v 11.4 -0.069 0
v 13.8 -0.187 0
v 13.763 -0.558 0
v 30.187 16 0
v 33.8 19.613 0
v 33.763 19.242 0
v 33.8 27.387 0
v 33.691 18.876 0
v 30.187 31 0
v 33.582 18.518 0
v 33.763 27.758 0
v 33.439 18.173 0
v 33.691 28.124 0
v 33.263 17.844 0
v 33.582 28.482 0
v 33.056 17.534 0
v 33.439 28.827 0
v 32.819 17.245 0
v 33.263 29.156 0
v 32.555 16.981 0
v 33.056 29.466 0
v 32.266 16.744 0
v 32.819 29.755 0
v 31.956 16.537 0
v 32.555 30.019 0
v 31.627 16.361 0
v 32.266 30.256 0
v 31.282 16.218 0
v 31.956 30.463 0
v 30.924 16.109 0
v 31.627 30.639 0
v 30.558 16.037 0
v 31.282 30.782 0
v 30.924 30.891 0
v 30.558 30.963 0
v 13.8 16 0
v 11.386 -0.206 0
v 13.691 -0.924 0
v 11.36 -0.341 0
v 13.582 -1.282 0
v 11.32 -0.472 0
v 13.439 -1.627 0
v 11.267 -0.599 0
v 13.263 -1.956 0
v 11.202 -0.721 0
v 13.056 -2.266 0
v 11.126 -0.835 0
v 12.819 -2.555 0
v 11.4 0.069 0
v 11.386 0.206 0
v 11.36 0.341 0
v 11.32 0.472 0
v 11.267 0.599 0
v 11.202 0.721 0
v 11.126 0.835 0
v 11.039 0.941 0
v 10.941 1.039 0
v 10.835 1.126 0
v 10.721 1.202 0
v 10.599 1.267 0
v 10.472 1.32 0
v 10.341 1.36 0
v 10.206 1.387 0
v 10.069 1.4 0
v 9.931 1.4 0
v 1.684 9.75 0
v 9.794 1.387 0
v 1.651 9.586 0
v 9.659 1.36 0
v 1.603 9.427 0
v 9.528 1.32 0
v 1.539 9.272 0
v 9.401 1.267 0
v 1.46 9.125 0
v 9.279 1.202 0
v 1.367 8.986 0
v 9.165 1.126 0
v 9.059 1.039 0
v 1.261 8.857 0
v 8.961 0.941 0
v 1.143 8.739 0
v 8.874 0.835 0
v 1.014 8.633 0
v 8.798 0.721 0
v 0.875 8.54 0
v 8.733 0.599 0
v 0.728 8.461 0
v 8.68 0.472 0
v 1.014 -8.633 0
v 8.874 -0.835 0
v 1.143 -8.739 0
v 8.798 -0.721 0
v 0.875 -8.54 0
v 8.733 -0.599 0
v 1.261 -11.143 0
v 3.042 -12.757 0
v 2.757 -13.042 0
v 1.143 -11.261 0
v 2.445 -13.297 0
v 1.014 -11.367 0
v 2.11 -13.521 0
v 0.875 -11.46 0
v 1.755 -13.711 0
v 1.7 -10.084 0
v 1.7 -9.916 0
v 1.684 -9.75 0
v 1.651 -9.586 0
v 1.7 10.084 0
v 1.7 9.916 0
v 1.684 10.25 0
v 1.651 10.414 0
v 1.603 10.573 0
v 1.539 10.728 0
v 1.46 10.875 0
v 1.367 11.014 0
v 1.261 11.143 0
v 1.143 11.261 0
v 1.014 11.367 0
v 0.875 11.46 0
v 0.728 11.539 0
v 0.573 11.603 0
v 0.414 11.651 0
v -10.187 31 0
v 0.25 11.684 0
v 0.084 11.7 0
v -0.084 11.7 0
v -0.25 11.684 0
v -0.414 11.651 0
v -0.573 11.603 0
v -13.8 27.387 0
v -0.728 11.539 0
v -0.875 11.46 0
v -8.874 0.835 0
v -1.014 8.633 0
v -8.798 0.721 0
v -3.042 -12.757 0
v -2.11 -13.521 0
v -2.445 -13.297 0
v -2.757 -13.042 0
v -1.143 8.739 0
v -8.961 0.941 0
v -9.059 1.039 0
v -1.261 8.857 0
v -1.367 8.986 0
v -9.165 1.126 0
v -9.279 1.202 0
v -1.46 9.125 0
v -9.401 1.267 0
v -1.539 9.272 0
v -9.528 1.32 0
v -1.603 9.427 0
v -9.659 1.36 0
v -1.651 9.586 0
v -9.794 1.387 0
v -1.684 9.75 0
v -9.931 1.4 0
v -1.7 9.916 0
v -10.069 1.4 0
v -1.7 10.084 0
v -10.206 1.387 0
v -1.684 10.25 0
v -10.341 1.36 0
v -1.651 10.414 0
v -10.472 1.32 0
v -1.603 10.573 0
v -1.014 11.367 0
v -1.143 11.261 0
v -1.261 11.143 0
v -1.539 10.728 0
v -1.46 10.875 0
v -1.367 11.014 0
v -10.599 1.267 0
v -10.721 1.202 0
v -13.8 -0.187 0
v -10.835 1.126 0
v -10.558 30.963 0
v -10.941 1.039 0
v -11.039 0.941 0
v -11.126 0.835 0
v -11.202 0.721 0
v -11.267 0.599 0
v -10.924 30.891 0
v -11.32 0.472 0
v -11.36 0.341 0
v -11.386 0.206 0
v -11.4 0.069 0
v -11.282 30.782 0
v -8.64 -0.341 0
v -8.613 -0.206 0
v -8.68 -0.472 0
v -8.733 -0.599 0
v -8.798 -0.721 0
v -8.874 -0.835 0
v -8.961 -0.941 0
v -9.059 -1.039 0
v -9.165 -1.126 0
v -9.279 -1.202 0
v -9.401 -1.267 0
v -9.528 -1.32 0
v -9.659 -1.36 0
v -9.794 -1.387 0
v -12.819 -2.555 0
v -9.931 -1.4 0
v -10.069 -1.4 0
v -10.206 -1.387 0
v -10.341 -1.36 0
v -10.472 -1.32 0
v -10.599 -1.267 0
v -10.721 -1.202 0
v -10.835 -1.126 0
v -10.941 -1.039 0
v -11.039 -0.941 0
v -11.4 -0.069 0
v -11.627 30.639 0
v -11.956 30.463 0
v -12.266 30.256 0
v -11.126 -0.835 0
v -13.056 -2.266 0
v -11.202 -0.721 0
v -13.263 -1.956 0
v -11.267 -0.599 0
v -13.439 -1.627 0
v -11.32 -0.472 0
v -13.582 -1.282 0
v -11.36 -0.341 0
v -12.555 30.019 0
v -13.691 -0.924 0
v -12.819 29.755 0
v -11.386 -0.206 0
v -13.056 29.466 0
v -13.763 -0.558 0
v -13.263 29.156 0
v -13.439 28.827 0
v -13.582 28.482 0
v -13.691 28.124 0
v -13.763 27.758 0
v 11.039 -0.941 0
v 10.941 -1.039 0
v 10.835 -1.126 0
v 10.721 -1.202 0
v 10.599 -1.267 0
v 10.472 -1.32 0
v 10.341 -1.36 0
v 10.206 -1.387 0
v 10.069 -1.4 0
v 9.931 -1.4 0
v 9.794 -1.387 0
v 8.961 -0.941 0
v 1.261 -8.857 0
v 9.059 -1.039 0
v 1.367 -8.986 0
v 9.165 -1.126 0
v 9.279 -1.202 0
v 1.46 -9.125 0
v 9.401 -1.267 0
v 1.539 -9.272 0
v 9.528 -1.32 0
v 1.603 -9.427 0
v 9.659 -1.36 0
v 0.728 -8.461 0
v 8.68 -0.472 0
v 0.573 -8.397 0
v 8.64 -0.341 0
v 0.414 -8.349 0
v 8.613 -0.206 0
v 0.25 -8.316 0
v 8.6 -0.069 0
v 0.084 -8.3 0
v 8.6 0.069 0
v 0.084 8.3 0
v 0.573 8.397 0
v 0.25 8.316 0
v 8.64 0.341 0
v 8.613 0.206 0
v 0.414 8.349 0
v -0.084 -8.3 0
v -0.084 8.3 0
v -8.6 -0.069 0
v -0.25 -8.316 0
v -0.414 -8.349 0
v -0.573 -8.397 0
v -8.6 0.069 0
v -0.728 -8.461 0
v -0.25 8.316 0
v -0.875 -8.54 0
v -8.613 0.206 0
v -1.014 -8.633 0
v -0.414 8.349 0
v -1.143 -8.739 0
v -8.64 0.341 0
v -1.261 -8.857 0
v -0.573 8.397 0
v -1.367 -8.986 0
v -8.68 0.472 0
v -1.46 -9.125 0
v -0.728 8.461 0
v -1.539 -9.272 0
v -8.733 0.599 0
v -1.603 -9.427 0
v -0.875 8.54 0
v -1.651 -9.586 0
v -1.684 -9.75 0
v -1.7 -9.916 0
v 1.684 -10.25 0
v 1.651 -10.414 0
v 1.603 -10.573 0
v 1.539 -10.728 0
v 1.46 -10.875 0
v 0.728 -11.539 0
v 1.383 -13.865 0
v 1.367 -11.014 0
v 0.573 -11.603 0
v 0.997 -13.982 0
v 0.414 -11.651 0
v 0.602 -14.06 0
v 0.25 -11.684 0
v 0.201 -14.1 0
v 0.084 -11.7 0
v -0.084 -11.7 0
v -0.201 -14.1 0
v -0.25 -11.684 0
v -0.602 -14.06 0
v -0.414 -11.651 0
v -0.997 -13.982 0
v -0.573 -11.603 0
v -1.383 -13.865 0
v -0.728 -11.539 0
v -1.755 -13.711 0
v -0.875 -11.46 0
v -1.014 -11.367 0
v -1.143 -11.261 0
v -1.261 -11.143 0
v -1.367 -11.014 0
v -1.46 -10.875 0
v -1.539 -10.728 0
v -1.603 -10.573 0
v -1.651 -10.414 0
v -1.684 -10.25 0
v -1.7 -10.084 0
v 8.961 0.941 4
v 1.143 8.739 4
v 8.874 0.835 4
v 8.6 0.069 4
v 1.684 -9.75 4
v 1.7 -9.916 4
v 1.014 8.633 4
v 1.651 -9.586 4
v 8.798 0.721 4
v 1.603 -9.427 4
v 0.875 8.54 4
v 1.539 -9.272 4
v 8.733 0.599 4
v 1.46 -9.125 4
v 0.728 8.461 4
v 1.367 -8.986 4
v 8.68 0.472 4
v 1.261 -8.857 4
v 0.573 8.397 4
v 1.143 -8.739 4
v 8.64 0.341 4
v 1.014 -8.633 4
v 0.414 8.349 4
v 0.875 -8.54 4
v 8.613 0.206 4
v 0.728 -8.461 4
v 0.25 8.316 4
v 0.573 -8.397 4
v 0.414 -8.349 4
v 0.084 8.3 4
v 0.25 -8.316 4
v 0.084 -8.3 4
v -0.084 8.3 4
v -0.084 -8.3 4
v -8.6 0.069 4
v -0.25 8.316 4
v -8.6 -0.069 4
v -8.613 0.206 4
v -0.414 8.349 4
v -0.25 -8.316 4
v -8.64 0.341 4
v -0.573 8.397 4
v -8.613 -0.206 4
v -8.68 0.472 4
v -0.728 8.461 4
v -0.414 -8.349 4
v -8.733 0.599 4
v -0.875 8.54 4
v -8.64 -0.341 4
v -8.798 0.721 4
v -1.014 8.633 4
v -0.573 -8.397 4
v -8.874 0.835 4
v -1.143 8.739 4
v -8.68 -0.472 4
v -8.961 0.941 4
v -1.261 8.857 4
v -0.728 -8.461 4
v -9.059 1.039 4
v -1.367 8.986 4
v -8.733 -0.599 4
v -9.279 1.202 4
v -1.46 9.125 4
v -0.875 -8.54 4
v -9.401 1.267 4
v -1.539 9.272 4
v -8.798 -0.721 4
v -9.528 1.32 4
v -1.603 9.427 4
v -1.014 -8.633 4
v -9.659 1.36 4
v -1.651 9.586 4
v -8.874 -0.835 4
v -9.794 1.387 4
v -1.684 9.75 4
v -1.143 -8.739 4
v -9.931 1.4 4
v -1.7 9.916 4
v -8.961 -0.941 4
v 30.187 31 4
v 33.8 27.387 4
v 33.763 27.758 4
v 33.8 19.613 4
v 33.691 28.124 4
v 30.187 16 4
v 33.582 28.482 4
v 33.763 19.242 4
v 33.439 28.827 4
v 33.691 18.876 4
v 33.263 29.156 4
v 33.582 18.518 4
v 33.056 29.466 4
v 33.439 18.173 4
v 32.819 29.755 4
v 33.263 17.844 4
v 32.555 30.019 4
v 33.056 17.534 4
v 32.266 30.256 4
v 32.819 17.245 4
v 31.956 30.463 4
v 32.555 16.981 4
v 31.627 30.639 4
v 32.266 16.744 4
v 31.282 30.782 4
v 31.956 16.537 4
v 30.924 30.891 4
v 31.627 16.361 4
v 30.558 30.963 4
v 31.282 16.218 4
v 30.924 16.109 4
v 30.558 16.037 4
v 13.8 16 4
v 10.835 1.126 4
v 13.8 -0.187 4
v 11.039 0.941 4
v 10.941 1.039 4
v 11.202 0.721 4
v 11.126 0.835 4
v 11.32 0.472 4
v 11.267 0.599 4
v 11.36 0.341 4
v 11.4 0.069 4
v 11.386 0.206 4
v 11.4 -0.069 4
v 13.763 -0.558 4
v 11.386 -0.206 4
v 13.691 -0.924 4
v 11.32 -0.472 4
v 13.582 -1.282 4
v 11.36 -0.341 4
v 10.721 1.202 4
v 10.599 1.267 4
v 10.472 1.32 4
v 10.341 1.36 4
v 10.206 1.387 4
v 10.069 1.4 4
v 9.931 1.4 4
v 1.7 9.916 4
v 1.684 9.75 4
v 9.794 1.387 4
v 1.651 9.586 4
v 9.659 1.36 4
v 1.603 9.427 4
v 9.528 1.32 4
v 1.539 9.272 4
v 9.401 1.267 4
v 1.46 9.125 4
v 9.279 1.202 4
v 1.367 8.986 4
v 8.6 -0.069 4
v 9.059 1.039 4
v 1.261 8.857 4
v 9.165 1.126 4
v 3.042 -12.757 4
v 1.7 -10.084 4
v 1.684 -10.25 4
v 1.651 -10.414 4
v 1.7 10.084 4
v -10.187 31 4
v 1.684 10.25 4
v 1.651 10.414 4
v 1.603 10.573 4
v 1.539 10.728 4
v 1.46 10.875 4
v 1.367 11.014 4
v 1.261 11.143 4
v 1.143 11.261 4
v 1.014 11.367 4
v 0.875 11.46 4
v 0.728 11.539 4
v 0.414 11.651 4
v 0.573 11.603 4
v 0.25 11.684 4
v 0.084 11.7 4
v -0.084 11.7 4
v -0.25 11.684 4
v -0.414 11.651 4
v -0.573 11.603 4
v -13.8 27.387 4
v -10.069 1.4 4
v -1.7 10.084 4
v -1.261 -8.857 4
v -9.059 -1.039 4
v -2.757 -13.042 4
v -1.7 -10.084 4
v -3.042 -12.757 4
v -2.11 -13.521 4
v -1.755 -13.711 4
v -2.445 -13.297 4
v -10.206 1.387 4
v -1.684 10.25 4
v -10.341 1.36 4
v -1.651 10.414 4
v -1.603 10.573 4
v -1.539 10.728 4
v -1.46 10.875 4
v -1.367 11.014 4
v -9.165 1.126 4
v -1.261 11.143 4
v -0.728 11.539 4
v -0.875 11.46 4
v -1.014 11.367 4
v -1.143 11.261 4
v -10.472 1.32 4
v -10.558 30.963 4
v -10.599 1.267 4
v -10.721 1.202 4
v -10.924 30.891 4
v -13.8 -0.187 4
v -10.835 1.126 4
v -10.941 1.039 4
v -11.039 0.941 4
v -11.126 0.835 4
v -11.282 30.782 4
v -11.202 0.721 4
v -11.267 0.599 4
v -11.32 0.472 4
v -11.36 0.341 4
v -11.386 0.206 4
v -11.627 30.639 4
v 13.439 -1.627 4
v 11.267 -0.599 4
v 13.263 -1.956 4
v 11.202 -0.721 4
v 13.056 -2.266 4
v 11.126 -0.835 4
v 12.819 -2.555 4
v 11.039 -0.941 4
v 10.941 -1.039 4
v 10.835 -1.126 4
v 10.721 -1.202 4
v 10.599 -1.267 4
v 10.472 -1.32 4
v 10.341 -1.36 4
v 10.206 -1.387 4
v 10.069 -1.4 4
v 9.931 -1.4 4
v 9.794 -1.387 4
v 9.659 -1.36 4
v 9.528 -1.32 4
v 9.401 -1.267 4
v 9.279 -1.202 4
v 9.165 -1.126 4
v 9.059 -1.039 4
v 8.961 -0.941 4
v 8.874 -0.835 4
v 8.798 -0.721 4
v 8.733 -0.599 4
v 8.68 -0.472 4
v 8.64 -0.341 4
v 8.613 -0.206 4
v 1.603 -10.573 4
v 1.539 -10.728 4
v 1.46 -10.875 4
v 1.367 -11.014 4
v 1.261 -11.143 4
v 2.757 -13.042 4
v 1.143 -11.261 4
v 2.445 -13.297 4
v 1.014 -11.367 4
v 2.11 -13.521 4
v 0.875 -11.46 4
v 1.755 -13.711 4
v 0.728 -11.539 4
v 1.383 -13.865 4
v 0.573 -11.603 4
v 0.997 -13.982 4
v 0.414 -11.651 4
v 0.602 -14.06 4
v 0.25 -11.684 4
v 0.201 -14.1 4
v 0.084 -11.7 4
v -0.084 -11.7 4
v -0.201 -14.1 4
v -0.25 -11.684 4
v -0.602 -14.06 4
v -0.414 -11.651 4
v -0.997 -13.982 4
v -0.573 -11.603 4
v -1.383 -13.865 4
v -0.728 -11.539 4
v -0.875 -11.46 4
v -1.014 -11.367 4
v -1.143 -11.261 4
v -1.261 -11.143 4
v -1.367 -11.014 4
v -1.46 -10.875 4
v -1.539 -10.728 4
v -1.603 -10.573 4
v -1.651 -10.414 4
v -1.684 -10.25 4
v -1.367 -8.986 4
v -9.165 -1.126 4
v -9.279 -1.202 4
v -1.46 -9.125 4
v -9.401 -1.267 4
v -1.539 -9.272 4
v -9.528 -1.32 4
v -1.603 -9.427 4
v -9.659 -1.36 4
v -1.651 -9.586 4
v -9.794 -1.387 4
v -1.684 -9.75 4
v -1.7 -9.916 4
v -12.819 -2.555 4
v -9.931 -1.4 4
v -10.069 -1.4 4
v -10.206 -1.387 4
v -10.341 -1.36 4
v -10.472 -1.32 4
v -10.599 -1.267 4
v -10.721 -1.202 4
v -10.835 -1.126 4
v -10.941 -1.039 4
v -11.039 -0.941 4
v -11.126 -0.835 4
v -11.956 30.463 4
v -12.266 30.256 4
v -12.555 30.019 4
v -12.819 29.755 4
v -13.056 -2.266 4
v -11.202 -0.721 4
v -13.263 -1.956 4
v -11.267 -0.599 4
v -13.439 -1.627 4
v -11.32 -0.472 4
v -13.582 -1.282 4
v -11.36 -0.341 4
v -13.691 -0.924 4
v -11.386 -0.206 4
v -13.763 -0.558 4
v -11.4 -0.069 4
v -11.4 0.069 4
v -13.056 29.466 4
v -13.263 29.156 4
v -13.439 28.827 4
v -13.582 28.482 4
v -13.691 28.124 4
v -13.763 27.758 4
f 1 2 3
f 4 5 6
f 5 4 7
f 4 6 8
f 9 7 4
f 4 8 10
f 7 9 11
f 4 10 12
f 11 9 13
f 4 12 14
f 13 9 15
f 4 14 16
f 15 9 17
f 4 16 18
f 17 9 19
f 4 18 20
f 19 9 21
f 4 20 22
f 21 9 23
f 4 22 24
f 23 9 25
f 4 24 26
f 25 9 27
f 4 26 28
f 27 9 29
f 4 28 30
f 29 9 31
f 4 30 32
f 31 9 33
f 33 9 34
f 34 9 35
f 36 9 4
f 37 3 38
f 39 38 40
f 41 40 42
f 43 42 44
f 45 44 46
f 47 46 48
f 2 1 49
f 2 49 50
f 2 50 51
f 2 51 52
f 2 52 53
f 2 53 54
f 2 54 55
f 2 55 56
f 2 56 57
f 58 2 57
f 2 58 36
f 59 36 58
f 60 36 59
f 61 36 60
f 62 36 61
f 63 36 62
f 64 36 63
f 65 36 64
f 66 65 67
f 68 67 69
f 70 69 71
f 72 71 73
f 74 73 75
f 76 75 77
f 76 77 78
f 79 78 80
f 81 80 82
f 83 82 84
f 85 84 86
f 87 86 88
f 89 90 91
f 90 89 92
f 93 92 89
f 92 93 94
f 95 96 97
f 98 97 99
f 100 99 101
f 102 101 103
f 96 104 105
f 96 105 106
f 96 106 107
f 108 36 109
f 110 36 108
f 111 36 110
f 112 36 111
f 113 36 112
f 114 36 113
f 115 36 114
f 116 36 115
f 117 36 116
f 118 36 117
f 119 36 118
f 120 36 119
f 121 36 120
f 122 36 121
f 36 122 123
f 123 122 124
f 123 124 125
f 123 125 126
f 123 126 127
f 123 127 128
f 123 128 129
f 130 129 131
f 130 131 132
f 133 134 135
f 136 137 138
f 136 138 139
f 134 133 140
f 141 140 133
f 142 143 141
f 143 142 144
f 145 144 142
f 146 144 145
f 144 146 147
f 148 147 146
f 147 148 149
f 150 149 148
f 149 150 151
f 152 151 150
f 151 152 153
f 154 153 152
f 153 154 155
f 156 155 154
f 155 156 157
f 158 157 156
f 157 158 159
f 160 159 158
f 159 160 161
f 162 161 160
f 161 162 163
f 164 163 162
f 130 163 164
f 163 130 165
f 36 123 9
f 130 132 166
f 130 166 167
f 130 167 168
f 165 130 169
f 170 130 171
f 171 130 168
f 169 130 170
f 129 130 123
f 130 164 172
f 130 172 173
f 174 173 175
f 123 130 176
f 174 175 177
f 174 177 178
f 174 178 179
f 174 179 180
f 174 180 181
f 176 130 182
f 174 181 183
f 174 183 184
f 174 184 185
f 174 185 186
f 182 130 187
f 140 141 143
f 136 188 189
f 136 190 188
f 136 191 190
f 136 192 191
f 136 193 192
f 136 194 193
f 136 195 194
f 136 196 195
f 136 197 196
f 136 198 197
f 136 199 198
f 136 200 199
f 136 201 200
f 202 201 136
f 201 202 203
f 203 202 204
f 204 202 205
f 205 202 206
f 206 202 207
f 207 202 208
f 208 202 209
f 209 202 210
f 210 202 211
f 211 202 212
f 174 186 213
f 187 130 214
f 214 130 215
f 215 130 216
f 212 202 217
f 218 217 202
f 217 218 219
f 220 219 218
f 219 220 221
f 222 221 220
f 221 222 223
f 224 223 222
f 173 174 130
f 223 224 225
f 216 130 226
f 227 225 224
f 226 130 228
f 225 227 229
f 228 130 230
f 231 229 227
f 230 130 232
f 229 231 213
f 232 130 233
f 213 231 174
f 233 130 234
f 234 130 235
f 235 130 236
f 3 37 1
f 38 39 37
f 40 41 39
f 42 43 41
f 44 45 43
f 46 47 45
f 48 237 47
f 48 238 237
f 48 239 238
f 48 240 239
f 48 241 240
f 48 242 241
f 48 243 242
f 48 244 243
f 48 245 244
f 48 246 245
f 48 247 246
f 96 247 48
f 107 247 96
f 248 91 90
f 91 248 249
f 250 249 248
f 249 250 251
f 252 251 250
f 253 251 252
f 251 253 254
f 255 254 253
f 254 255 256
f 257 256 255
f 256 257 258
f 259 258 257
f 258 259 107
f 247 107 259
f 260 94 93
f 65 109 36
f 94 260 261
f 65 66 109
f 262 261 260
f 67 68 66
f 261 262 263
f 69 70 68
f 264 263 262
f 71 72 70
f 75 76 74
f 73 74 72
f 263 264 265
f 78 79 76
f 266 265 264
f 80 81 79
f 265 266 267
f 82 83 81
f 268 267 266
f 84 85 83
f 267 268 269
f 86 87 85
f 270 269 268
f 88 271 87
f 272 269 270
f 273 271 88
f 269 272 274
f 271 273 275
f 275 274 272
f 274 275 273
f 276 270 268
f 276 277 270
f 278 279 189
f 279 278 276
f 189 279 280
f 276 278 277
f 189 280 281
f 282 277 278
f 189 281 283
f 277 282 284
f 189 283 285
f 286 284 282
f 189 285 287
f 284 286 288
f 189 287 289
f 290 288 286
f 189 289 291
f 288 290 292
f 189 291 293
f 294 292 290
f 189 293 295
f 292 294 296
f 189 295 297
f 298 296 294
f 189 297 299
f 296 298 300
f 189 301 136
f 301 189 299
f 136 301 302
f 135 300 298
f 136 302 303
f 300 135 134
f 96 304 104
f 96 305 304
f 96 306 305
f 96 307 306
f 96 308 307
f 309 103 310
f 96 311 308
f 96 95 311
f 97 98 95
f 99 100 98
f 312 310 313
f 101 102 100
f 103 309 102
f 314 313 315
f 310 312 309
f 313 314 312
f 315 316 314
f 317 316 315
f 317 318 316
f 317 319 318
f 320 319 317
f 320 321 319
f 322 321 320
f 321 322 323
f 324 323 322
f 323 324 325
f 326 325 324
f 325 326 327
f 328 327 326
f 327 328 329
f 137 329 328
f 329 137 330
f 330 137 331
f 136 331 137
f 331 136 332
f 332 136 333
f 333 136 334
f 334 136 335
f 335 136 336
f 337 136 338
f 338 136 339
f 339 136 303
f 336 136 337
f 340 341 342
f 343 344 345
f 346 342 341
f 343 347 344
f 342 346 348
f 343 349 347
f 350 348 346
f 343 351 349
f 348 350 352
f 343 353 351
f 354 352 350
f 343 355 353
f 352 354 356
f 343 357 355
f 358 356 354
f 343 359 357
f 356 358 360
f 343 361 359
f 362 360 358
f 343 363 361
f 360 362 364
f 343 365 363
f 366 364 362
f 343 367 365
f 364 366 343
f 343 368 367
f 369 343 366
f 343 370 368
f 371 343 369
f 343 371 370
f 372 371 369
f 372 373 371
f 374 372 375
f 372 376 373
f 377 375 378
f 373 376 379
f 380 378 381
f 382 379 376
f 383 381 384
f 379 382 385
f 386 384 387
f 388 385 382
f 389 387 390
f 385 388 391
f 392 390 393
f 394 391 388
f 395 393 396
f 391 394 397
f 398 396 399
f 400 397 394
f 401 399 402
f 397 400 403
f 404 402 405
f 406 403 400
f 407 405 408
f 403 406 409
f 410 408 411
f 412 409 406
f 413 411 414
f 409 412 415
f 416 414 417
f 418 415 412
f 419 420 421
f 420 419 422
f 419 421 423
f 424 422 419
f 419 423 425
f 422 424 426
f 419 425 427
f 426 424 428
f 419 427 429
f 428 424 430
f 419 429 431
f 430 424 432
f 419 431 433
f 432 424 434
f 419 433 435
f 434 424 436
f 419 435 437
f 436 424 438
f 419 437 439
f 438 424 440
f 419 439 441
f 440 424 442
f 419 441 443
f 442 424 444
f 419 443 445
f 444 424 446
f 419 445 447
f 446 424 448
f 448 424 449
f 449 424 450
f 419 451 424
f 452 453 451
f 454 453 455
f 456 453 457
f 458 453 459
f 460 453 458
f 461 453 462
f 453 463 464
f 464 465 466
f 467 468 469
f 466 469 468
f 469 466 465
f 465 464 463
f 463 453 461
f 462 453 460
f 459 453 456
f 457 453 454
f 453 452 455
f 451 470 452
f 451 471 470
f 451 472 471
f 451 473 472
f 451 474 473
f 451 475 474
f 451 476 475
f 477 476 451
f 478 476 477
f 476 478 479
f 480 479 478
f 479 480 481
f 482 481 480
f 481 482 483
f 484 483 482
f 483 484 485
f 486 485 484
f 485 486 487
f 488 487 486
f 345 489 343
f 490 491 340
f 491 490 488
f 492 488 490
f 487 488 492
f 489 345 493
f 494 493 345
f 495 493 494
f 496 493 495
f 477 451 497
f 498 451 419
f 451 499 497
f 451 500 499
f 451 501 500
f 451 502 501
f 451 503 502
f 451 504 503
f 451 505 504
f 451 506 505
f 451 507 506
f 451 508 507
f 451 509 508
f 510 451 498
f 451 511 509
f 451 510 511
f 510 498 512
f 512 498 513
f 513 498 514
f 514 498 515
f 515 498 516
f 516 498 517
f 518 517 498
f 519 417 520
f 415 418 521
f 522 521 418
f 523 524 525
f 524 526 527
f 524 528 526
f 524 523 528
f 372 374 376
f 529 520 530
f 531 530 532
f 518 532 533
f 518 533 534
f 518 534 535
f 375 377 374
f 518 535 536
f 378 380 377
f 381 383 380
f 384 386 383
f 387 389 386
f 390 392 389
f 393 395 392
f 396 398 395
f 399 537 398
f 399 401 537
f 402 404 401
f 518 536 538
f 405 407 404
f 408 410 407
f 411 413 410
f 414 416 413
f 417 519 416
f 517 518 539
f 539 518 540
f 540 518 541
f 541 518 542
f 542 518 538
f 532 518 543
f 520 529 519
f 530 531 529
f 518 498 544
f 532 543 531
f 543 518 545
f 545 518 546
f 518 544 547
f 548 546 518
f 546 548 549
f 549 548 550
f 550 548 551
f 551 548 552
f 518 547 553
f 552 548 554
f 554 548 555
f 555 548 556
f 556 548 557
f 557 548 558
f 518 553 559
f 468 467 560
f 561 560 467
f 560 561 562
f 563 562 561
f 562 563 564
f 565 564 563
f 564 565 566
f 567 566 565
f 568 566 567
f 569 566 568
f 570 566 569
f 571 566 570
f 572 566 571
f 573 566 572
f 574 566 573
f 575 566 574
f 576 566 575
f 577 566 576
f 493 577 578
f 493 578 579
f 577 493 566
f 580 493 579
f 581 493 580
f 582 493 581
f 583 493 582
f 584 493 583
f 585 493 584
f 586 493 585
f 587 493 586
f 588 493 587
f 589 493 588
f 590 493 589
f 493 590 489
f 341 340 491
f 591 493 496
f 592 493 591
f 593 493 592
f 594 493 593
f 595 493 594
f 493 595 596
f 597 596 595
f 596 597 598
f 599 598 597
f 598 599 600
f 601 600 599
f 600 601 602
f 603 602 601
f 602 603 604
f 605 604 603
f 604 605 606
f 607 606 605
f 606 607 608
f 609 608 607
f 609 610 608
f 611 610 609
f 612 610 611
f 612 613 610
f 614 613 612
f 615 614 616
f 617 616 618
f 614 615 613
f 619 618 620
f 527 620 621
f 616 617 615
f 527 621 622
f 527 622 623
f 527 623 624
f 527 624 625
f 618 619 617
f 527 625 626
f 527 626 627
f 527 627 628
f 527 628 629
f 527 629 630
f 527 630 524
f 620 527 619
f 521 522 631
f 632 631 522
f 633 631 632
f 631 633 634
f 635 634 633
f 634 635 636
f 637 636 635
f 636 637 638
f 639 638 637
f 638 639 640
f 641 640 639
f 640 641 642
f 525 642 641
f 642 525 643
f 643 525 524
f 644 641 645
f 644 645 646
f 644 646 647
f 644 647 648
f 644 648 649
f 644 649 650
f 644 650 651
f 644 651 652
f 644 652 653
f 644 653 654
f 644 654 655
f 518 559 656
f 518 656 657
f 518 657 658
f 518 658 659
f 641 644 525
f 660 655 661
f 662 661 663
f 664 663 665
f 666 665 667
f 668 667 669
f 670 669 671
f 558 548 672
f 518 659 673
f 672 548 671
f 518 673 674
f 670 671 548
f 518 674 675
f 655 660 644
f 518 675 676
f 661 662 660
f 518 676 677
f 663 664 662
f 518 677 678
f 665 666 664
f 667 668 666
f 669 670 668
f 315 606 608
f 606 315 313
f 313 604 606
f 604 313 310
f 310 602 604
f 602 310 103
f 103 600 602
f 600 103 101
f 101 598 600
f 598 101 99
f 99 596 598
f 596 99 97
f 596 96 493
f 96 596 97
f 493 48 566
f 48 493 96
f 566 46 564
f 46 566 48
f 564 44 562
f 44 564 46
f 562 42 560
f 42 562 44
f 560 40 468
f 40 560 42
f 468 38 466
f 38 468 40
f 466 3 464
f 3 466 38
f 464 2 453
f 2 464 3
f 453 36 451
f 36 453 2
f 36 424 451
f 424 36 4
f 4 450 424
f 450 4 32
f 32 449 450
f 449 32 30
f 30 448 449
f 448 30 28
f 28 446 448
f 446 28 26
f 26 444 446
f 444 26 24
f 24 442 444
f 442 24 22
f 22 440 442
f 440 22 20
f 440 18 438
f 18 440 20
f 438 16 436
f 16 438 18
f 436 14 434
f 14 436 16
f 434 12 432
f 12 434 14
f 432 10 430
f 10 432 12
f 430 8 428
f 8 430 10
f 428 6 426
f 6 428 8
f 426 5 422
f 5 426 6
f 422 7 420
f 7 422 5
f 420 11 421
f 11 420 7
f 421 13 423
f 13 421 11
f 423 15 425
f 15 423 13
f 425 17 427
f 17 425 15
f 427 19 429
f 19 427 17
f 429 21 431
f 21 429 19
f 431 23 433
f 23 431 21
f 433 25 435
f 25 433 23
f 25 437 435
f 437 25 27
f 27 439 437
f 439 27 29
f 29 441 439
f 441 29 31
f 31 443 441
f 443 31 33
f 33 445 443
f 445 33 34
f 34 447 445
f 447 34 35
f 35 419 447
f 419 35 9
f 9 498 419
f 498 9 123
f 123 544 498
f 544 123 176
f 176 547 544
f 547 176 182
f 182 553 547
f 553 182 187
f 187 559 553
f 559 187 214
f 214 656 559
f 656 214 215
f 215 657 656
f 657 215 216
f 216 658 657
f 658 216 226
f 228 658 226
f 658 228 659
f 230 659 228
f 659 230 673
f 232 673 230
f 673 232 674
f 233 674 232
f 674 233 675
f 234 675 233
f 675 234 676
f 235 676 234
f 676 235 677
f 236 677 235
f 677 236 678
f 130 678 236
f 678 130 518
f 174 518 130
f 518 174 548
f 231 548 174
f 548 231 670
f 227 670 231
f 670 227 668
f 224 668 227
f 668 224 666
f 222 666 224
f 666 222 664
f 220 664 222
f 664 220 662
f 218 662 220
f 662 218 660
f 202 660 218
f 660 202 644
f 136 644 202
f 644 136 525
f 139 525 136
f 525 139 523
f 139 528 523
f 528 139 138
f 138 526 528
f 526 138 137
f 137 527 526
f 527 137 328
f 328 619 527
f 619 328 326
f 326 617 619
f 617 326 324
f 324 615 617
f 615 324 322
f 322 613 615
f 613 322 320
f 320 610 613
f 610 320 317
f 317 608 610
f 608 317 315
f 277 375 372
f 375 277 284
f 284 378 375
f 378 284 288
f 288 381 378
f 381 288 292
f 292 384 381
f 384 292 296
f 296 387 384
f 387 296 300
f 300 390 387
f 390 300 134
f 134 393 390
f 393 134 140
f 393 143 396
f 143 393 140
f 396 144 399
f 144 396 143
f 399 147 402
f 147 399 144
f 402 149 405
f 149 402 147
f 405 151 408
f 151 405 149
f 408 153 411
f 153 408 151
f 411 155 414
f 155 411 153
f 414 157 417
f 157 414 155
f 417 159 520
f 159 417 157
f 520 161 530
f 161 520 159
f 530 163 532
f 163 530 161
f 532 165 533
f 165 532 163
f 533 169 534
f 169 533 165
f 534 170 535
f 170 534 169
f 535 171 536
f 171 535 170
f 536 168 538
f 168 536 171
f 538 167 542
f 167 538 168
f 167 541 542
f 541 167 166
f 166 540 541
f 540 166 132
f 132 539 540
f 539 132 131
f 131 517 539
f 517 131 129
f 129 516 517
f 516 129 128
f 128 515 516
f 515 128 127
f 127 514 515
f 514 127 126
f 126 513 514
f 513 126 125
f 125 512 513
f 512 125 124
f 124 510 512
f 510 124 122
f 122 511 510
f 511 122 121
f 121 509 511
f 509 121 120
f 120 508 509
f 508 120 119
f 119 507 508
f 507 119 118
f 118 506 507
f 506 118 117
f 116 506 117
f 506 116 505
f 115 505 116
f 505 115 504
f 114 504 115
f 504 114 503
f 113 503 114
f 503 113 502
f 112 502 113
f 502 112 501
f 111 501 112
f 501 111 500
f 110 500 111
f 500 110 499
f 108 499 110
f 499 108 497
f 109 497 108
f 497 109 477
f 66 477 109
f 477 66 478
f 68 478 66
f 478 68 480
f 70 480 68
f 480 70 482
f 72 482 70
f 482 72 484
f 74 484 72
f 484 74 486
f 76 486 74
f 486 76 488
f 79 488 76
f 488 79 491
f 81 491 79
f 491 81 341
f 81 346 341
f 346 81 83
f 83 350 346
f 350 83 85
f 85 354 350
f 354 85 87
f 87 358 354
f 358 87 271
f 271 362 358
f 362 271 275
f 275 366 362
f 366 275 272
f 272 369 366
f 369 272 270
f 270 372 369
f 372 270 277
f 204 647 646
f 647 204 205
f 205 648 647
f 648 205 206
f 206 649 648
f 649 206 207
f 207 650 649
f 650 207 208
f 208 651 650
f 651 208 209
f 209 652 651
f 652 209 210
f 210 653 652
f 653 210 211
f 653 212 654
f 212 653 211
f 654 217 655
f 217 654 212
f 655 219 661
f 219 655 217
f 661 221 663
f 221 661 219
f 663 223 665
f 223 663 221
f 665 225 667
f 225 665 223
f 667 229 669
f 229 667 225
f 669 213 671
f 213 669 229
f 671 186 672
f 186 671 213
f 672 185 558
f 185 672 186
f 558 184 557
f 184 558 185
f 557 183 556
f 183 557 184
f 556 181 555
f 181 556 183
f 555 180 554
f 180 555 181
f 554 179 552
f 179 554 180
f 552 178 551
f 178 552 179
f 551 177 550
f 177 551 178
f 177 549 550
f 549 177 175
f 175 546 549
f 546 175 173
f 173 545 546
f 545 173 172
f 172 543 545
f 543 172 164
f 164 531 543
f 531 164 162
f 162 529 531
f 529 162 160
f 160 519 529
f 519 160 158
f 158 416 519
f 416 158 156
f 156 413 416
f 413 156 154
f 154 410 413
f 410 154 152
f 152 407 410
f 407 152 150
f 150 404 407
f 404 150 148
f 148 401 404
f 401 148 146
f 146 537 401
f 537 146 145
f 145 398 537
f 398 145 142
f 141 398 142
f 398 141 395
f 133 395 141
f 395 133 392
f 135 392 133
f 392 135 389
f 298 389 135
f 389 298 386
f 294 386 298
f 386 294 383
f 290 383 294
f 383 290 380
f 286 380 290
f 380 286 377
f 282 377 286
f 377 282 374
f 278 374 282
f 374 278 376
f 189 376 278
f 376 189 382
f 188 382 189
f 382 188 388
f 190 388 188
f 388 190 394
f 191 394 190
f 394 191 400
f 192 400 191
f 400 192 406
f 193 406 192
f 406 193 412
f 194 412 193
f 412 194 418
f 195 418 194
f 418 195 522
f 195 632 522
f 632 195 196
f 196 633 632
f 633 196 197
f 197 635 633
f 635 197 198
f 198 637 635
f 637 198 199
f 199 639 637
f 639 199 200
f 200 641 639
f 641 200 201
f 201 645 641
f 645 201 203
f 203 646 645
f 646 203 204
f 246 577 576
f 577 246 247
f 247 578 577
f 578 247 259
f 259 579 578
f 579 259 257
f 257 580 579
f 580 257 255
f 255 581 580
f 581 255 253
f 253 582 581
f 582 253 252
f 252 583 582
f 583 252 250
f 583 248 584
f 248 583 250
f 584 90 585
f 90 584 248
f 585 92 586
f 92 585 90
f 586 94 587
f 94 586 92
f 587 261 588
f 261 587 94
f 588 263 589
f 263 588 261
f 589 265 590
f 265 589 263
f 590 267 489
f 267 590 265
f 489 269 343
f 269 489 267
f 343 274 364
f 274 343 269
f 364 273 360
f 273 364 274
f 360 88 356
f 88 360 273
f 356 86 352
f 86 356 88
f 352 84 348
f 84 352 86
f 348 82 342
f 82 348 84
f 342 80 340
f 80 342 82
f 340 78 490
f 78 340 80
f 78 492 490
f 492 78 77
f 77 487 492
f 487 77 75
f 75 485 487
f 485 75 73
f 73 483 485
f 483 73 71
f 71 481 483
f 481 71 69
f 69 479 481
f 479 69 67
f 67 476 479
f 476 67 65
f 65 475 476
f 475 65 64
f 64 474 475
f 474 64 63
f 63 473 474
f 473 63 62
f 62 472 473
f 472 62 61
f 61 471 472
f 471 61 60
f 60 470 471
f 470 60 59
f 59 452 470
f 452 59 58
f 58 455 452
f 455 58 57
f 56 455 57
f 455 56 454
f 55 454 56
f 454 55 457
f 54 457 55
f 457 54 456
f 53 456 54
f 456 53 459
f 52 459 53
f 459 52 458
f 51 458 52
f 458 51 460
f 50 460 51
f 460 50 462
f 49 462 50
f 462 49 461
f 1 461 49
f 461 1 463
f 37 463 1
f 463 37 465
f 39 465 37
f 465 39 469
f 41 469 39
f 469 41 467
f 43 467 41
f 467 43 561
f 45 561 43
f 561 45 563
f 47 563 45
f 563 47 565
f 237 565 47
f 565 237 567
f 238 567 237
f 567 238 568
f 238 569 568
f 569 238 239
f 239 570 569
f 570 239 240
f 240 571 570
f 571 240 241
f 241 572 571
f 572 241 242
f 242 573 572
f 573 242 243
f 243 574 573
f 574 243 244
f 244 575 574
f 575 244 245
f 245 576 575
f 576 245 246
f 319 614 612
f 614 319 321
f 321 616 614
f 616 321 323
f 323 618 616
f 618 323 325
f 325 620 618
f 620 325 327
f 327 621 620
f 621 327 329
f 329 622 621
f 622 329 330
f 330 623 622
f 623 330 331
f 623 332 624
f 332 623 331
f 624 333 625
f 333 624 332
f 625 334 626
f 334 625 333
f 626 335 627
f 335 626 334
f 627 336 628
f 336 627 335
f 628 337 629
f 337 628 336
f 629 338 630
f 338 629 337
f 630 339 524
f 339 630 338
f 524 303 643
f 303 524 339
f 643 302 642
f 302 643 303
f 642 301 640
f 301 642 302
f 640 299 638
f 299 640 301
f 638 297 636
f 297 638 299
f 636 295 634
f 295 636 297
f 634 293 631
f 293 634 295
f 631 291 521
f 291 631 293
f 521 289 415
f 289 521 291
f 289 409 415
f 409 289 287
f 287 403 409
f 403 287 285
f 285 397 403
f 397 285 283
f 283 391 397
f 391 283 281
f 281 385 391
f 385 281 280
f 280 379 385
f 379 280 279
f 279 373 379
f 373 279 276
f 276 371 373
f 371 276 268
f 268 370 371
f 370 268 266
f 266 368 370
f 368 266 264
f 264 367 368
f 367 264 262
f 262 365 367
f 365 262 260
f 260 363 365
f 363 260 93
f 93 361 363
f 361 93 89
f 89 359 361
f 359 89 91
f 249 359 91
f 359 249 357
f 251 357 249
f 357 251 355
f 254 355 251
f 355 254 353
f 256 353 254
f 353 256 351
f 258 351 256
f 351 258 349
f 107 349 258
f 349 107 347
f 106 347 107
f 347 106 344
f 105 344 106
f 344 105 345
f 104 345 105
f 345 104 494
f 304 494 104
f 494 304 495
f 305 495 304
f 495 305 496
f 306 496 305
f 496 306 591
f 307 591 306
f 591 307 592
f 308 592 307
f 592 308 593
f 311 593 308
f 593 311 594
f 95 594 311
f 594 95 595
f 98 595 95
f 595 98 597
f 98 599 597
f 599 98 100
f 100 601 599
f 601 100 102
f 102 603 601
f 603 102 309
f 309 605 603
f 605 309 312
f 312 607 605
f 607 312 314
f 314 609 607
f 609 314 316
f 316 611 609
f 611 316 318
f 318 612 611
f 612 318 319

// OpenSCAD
use <../sketch-for-simpler.scad>;

y_on_carriage_dragchain_anchor_mount();
